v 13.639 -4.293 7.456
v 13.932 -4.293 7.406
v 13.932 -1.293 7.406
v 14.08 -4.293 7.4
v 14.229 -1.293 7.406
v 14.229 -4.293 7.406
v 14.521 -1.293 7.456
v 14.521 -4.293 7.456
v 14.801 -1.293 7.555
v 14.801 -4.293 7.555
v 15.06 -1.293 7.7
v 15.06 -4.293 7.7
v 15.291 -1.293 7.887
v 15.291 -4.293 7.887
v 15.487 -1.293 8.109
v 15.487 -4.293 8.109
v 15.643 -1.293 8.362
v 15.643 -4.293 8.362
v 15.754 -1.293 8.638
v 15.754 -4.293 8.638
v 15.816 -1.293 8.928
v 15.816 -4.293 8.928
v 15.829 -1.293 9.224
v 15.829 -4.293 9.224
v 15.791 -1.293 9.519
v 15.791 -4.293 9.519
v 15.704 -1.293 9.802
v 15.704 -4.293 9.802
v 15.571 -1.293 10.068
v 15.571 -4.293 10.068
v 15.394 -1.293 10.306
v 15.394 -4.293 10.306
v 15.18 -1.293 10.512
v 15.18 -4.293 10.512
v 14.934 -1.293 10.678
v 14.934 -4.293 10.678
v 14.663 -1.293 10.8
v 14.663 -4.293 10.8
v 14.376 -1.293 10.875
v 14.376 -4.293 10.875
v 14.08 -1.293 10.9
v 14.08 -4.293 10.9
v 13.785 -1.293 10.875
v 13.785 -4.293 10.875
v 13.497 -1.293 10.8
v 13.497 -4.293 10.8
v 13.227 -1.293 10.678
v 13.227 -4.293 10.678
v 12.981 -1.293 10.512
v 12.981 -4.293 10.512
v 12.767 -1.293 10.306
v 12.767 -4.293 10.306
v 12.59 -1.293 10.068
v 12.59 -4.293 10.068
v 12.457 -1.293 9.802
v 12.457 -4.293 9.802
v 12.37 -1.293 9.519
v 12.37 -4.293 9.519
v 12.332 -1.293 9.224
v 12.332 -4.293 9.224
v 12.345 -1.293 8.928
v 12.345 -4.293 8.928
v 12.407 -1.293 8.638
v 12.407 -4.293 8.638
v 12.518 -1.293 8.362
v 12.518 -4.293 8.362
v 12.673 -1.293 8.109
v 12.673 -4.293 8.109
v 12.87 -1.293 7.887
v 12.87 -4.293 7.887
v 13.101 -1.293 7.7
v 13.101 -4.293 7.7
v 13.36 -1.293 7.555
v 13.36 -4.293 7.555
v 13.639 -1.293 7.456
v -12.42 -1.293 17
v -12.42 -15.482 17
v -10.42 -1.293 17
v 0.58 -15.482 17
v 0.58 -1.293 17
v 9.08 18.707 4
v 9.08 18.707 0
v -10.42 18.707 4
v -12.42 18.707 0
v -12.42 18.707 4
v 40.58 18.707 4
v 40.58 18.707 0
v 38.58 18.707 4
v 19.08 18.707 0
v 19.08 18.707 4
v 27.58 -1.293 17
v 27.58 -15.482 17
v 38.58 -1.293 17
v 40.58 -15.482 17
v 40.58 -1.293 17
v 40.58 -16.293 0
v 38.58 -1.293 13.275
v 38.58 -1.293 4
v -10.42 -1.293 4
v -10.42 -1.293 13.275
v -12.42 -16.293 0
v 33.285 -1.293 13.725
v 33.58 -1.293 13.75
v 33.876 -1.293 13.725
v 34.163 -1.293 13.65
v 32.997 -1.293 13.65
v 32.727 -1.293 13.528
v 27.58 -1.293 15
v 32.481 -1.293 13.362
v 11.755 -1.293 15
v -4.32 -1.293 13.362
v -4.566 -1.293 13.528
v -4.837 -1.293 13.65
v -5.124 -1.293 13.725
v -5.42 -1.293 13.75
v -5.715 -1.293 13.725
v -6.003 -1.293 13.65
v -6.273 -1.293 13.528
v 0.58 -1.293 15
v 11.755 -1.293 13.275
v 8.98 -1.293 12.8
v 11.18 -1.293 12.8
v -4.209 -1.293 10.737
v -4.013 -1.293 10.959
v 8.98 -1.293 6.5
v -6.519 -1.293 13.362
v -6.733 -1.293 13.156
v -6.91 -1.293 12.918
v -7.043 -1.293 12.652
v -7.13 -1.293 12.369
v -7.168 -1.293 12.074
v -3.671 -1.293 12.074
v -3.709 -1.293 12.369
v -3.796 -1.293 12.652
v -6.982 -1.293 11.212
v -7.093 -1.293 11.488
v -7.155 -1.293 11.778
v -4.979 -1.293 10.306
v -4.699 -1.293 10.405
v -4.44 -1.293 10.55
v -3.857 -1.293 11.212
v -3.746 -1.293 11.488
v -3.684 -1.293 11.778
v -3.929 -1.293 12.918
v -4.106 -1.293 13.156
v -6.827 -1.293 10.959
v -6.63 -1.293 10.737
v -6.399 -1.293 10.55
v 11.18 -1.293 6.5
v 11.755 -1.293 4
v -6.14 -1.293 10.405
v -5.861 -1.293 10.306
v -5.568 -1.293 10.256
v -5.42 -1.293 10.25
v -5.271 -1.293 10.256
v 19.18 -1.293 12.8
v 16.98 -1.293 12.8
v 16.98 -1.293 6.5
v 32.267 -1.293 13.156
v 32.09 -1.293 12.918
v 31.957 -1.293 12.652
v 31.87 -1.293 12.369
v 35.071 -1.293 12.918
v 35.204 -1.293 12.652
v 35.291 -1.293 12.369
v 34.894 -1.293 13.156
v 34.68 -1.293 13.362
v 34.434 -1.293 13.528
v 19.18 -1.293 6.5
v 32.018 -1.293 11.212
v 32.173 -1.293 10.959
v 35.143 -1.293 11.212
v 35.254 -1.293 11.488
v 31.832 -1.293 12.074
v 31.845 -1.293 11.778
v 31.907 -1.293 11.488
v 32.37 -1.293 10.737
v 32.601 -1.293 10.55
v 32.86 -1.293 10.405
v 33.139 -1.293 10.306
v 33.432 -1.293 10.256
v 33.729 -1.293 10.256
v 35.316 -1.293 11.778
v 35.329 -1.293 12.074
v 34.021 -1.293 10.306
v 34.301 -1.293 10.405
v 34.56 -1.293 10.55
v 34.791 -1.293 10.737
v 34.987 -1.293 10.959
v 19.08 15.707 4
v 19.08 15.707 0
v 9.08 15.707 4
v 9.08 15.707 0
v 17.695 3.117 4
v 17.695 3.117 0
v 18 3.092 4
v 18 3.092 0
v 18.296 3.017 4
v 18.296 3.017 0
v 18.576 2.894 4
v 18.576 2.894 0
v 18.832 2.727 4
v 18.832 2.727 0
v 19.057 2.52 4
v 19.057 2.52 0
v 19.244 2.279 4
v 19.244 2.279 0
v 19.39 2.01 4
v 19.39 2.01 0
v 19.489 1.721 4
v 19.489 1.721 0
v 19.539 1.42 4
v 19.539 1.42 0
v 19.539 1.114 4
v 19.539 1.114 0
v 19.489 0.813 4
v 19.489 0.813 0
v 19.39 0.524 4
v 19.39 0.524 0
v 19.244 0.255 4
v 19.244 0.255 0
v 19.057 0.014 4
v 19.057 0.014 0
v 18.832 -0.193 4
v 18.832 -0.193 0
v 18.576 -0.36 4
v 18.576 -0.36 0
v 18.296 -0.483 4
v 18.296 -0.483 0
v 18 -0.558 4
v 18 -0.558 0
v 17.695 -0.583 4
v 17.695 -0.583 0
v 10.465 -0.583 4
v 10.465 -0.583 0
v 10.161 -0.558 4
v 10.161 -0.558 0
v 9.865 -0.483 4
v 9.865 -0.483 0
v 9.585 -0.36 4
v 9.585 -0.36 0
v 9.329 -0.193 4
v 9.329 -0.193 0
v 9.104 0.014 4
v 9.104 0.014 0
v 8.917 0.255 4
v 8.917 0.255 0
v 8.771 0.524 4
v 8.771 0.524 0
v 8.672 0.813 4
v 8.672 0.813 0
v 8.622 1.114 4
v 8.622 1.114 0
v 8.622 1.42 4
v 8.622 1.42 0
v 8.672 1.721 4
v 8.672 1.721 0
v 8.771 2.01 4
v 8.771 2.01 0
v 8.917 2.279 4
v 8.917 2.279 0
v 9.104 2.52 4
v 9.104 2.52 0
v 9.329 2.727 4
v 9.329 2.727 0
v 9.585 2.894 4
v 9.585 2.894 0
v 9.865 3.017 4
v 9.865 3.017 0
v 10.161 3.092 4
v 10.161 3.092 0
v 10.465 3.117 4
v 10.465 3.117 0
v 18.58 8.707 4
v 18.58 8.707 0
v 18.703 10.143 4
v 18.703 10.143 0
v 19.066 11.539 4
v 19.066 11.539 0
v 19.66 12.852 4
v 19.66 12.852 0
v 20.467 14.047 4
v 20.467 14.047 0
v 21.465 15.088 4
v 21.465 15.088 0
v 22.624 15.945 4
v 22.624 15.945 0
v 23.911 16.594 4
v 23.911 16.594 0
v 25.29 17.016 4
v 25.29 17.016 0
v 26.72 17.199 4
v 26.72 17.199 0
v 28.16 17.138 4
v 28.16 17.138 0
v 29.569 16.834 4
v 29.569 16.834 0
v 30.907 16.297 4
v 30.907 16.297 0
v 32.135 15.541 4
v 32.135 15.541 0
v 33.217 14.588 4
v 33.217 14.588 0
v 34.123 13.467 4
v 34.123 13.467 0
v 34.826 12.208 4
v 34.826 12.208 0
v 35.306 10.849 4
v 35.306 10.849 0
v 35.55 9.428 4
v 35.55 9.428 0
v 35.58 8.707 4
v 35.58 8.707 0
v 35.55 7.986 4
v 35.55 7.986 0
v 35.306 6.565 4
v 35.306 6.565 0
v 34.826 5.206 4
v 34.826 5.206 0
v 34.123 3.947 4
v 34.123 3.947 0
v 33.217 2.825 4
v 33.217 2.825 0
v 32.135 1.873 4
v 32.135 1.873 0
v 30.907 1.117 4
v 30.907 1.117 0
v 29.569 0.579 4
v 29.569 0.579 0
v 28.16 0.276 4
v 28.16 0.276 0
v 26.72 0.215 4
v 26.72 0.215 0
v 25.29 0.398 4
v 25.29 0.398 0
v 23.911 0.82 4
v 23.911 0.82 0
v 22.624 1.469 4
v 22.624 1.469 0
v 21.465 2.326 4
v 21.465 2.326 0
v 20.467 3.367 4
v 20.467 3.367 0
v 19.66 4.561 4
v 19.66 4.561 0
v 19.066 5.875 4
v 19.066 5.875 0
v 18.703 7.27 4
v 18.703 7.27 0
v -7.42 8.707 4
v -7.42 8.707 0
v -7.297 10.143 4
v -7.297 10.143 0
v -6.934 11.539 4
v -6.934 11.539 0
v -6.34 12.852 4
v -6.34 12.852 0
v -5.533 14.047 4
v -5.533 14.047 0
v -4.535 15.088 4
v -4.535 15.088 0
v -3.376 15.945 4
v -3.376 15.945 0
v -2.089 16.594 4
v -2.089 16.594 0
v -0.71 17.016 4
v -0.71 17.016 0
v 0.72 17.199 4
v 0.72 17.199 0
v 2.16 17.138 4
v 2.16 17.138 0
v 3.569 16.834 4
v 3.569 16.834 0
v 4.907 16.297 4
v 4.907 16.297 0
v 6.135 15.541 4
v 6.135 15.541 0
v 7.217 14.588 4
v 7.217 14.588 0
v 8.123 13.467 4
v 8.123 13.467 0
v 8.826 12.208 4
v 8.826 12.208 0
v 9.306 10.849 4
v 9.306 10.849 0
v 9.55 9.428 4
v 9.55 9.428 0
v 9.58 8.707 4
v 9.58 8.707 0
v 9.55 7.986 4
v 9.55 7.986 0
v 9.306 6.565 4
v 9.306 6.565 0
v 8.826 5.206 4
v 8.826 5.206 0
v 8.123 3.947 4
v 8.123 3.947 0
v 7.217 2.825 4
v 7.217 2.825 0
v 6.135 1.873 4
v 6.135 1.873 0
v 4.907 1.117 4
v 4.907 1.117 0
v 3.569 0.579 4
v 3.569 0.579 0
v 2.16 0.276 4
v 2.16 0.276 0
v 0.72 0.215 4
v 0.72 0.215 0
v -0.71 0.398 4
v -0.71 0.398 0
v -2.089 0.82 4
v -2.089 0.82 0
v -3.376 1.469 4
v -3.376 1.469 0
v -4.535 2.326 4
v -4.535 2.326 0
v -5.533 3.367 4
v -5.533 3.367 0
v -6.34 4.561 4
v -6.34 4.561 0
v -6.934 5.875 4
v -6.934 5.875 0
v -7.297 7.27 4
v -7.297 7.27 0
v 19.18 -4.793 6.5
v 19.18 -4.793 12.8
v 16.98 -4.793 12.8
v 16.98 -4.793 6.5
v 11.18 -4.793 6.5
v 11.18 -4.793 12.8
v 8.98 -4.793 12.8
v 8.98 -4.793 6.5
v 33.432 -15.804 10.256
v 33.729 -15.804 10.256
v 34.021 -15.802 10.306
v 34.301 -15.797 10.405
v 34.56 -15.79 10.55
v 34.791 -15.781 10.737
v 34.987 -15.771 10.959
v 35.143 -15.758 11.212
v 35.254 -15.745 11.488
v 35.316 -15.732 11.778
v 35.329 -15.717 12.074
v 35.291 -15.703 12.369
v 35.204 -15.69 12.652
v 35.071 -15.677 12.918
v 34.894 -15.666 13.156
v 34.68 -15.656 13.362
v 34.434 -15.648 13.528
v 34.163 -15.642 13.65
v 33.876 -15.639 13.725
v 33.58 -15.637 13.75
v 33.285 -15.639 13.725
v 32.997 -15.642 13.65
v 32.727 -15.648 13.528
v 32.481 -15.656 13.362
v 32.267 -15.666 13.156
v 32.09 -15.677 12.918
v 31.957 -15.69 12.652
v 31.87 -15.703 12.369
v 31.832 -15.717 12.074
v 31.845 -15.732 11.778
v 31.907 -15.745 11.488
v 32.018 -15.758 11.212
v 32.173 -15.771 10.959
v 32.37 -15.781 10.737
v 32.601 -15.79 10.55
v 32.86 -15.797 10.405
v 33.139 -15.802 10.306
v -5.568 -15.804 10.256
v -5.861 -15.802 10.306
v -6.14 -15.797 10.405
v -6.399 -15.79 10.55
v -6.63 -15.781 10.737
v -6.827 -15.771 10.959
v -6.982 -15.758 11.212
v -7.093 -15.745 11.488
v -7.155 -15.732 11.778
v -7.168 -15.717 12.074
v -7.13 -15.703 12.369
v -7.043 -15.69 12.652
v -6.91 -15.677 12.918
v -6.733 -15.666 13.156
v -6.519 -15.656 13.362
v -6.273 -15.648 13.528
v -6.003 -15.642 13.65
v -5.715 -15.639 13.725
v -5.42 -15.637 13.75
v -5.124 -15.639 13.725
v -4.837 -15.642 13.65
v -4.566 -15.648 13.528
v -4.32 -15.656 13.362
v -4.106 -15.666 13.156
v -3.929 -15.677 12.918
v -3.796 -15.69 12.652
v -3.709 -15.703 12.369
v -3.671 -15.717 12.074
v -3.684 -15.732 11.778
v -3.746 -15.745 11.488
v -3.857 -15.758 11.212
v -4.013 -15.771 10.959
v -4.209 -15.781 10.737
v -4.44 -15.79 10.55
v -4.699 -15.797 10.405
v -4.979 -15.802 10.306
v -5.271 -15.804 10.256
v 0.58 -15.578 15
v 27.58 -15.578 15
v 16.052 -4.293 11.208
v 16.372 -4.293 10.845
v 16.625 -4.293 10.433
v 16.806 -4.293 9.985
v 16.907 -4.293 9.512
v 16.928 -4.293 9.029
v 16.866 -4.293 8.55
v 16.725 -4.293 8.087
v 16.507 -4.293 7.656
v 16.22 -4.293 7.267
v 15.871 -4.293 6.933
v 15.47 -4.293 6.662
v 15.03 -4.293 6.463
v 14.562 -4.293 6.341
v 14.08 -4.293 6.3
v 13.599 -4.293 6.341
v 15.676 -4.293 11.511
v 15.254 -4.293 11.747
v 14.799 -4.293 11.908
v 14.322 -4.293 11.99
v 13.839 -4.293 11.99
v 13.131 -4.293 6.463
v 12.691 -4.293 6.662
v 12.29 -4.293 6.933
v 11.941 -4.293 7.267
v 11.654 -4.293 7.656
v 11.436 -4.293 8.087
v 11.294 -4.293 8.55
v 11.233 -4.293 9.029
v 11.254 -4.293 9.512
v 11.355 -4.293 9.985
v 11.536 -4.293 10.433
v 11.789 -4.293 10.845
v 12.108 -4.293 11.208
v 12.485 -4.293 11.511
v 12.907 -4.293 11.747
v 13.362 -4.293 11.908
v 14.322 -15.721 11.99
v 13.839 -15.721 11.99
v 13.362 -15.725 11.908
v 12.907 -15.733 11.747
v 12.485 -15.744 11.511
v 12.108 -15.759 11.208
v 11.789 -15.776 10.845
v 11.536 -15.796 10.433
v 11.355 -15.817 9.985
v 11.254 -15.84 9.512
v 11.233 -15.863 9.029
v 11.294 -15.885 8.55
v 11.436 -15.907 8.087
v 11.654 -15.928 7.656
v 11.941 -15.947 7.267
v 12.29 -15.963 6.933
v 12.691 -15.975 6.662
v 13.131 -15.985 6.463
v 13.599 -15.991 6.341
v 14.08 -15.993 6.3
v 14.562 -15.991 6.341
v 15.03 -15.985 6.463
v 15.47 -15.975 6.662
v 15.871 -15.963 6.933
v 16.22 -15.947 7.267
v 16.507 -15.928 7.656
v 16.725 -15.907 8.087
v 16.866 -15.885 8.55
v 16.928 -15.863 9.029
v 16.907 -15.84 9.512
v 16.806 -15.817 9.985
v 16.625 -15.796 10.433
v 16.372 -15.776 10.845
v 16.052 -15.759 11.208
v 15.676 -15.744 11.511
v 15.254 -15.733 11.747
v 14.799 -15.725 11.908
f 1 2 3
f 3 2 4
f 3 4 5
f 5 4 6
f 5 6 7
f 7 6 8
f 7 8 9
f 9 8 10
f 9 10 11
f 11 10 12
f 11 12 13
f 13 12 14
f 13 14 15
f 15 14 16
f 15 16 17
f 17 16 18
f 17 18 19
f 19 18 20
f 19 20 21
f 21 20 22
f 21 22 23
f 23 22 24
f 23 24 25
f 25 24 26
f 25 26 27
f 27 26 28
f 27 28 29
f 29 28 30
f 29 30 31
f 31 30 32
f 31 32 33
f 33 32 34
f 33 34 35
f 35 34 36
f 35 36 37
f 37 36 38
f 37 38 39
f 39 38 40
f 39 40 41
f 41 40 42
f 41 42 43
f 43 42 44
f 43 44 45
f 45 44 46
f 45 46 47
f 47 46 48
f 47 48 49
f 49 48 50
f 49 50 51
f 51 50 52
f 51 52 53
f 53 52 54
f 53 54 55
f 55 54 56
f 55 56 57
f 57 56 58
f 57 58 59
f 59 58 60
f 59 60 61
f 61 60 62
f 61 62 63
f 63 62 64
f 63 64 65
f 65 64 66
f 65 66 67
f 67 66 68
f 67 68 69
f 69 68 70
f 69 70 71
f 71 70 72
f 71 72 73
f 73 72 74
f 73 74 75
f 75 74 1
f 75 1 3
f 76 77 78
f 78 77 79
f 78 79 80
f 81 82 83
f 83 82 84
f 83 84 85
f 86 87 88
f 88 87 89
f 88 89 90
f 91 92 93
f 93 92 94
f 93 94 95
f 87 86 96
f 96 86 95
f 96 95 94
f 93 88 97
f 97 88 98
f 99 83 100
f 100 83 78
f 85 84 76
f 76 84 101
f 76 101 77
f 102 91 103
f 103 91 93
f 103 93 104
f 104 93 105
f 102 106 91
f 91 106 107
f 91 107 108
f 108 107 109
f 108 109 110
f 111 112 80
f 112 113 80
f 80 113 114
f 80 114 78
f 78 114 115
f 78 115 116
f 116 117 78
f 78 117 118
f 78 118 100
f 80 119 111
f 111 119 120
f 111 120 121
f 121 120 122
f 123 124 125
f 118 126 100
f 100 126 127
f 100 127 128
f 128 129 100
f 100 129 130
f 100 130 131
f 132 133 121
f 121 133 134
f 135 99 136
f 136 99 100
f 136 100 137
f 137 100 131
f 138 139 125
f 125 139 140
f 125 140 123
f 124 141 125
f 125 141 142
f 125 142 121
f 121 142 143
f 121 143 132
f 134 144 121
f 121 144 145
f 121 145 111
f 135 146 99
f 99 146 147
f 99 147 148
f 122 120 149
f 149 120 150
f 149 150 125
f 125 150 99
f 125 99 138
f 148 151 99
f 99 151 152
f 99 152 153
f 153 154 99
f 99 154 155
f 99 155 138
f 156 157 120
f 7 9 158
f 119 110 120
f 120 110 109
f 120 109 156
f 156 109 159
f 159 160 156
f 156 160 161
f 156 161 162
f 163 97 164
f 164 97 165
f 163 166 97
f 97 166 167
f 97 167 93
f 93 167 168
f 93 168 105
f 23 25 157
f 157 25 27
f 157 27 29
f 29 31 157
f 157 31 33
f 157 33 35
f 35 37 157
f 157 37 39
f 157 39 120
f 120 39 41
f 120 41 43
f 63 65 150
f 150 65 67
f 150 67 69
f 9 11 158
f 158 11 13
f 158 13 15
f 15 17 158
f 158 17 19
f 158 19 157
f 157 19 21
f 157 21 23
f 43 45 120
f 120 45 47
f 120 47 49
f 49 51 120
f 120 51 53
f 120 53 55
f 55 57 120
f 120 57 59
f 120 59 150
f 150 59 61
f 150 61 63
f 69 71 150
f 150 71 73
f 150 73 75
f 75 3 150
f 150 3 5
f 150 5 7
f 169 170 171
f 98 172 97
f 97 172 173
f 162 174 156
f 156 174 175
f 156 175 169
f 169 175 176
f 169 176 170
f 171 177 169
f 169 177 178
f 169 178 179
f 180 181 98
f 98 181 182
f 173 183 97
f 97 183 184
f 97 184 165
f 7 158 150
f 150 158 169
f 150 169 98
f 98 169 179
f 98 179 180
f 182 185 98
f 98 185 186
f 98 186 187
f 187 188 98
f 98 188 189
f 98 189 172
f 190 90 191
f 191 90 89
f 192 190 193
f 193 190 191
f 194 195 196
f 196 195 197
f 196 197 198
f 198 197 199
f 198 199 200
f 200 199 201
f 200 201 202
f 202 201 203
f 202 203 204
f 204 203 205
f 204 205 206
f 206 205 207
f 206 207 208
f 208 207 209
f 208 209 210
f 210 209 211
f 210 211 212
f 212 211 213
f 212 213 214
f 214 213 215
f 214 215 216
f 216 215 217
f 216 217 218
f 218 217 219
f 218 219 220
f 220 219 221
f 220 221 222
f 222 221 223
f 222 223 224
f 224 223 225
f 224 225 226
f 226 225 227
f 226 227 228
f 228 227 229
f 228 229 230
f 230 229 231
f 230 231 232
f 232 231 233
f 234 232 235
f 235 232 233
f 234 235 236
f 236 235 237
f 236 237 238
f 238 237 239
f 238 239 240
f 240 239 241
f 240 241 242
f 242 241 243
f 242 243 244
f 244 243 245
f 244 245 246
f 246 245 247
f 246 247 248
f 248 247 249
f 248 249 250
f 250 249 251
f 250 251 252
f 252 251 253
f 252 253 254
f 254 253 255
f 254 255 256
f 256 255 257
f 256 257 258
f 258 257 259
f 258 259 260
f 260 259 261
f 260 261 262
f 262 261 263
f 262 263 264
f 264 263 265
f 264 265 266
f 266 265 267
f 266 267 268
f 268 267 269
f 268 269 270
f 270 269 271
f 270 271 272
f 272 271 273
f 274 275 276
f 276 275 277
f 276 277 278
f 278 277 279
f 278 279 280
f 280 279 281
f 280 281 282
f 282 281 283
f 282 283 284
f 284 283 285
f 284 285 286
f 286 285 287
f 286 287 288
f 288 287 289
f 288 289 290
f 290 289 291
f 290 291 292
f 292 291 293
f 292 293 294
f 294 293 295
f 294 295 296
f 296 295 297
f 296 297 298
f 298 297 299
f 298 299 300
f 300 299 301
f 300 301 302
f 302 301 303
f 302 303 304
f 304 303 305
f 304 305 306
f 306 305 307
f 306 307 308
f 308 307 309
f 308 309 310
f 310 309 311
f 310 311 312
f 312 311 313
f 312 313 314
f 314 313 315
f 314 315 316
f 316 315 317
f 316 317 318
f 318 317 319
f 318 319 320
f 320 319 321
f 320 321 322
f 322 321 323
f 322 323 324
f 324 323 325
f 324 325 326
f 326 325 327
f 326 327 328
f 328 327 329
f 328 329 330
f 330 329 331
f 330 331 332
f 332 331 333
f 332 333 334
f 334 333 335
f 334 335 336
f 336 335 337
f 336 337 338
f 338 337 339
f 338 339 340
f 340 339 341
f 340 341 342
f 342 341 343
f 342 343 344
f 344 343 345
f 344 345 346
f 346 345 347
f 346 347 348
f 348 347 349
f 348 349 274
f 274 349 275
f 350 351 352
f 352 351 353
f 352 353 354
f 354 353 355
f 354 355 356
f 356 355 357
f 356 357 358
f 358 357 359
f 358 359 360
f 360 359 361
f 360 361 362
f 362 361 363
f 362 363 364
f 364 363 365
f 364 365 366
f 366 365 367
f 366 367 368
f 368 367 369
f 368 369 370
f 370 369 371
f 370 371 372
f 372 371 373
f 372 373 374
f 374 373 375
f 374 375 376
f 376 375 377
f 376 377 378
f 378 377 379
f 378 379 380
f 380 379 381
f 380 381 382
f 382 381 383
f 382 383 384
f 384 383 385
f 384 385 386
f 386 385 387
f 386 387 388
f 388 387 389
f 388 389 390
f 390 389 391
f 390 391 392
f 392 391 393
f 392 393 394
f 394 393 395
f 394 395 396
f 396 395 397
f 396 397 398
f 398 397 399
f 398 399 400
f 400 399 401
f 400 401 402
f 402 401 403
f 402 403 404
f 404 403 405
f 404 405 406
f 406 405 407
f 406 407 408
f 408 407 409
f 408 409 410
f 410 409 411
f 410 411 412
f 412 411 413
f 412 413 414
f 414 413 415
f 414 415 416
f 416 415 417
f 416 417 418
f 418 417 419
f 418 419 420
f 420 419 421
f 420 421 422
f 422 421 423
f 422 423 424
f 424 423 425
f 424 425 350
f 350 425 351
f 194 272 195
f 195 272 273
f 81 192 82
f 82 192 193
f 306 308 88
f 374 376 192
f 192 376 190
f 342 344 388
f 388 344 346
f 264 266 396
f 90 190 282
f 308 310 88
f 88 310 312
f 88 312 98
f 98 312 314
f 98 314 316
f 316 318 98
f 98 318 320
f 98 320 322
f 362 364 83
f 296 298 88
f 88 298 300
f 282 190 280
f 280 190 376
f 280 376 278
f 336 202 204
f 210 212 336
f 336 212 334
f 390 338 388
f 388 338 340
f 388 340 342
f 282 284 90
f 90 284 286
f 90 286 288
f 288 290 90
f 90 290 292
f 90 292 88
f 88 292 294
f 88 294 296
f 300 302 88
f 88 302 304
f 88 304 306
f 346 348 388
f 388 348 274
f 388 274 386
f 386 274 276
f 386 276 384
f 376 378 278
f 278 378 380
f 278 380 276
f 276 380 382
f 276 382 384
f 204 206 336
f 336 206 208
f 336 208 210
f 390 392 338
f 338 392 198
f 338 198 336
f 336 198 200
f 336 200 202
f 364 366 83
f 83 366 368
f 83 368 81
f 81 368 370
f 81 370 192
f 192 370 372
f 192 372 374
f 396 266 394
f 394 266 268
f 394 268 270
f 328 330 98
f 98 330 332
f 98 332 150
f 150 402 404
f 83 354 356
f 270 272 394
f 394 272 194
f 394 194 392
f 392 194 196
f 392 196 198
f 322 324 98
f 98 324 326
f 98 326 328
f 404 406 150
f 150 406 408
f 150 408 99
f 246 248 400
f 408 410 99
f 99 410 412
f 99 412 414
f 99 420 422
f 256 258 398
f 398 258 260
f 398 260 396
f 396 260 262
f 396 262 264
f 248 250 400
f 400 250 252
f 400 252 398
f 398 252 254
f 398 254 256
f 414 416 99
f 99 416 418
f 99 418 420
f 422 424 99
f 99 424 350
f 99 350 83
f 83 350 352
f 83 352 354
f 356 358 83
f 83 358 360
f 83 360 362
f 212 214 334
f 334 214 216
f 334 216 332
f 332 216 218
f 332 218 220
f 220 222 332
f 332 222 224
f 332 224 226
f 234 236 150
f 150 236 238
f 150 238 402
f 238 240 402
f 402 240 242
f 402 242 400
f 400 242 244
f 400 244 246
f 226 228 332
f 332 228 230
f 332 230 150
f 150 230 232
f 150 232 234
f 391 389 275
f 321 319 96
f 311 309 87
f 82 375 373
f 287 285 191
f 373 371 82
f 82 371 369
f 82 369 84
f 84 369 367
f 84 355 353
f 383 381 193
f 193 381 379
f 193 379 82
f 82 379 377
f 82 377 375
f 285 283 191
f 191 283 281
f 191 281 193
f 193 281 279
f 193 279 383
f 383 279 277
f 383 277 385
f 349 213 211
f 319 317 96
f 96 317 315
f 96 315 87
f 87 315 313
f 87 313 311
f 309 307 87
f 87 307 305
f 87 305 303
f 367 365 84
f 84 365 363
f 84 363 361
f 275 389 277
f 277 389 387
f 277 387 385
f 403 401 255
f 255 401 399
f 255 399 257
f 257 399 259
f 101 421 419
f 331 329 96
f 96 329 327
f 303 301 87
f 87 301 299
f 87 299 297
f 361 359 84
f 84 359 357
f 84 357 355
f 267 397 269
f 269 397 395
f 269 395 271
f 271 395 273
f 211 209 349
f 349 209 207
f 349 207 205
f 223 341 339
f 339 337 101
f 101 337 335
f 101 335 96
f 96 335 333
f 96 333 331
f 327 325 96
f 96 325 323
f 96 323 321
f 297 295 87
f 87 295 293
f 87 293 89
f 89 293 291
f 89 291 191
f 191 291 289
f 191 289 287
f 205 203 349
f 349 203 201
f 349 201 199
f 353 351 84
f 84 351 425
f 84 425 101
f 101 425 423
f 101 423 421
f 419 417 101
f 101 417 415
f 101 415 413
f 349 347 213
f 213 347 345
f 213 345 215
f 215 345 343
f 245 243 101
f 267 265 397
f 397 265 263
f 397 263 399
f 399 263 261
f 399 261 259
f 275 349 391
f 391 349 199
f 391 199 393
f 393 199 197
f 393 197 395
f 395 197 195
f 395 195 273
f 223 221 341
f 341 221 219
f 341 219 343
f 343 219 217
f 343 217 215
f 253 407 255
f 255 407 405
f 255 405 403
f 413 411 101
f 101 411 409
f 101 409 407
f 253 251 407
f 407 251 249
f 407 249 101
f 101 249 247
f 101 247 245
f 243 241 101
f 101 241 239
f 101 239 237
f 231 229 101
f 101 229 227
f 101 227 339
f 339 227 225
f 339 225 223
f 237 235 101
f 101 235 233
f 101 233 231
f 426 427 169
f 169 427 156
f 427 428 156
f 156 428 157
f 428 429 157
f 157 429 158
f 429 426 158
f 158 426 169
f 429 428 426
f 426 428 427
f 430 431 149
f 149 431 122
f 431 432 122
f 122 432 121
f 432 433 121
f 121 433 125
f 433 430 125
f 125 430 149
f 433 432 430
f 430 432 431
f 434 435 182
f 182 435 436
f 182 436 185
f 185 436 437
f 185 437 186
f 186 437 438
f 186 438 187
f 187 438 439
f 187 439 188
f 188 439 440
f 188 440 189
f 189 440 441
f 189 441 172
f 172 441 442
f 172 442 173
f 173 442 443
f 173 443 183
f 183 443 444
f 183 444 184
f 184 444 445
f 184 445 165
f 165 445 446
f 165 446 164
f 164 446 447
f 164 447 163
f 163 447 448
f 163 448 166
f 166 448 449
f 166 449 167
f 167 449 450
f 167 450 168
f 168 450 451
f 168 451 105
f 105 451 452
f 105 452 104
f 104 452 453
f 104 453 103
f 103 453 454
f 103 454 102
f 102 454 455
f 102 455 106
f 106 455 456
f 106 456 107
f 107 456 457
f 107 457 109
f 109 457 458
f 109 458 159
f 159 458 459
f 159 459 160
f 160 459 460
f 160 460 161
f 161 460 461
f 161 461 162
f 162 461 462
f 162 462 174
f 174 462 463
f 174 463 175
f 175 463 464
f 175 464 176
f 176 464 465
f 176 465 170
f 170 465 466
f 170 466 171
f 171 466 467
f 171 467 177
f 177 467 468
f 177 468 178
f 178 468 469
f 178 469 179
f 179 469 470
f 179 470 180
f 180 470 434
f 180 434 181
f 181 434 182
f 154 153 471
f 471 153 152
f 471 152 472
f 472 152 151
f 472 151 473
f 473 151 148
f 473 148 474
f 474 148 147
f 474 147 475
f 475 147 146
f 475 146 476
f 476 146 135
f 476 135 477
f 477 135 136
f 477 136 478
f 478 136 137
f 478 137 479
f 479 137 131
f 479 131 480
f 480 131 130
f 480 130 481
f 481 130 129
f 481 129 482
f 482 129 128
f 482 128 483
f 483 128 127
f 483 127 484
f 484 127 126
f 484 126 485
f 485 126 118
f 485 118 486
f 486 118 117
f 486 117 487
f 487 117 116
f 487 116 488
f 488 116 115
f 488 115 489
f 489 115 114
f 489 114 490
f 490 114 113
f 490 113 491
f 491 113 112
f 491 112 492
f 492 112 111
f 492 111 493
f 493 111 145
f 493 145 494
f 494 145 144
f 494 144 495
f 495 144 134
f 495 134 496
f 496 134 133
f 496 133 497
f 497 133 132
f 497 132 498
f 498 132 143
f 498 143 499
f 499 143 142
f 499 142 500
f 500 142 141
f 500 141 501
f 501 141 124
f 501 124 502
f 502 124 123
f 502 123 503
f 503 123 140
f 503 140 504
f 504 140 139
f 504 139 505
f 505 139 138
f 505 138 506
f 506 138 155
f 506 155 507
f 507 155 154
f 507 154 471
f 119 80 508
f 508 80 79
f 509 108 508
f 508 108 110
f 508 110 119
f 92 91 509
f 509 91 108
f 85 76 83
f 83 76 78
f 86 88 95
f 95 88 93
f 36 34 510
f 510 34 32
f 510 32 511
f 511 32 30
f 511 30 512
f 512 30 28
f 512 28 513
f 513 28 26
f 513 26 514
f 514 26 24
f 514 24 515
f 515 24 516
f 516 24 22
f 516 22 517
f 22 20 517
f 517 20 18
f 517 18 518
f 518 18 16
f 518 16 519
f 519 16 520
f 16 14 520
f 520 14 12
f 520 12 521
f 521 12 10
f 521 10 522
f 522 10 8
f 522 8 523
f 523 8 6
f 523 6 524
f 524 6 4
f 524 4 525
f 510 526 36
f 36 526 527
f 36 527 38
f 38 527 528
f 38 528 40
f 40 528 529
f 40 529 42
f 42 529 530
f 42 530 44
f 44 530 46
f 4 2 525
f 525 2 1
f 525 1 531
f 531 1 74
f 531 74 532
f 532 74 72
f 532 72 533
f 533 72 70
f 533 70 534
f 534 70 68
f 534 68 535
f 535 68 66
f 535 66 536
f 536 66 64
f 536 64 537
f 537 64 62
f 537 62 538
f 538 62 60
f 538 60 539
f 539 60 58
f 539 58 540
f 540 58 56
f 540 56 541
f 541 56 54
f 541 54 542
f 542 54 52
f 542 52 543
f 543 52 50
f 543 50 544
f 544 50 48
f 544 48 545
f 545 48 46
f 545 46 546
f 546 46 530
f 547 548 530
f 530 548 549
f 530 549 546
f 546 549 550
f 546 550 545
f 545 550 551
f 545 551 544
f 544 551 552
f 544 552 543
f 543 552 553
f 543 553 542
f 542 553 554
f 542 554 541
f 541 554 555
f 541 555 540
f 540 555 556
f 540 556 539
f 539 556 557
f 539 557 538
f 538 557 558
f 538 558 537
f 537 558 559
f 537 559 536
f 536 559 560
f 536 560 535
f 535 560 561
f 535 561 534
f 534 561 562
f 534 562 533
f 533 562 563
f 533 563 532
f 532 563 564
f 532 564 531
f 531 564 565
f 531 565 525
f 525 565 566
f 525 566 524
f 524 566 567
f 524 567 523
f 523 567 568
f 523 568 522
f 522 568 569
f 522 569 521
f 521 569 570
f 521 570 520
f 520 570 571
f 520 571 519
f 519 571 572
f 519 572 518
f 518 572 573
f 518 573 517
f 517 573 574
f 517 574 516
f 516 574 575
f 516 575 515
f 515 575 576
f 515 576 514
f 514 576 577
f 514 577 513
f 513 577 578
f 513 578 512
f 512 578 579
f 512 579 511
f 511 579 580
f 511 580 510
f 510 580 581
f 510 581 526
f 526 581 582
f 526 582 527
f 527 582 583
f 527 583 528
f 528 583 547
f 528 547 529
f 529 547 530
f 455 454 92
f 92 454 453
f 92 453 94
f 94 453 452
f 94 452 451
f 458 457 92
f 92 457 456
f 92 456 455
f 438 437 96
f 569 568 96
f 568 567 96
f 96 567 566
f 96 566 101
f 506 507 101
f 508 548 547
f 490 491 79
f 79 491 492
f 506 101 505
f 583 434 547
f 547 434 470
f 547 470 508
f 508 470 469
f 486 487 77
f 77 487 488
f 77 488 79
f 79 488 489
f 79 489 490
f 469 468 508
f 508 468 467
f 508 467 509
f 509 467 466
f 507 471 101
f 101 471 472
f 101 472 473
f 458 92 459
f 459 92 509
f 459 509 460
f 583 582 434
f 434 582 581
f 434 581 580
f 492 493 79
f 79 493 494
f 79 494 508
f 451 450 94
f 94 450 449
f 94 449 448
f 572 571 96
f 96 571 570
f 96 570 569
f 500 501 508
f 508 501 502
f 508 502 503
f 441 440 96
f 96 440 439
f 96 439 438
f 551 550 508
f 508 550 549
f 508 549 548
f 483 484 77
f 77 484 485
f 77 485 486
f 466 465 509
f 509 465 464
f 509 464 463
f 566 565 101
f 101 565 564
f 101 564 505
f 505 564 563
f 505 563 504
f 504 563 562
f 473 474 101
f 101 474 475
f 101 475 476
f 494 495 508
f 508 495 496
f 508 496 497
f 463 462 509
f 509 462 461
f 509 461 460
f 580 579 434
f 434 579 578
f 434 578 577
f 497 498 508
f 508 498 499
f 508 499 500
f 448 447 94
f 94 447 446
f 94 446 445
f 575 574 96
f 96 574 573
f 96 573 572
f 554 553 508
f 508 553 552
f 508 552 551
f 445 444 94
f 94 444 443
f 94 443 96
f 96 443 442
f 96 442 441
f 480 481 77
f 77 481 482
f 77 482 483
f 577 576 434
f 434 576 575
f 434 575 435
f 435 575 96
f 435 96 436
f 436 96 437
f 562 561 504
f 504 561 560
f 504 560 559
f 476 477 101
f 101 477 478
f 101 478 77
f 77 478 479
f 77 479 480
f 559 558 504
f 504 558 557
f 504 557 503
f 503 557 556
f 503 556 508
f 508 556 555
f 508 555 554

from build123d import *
from build123d.topology import SkipClean

# Parameters (mm, degrees)
SKETCH1_R           = 8.5
BOSS_EXTRUDE1_DEPTH = 4
BOSS_EXTRUDE2_DEPTH = 13
SKETCH3_W           = 2.2
SKETCH3_H           = 6.3
CUT_EXTRUDE1_DEPTH  = 3.5
SKETCH4_R           = 1.75
CUT_EXTRUDE2_DEPTH  = 47.663174732
SKETCH6_W           = 27
SKETCH6_H           = 2
CUT_EXTRUDE4_DEPTH  = 47.663174732
SKETCH7_W           = 2
SKETCH7_H           = 25
BOSS_EXTRUDE3_DEPTH = 17
CUT_EXTRUDE5_DEPTH  = 72
SKETCH9_R           = 1.75
BOSS_EXTRUDE4_DEPTH = 10
SKETCH10_R          = 2.85
CUT_EXTRUDE6_DEPTH  = 12
CUT_EXTRUDE7_DEPTH  = 54


with BuildPart() as part:
    # Sketch1 → Boss-Extrude1 (new body)
    with BuildSketch(Plane.XY):
        Polygon((-10.41954023, 18.706896552), (-10.41954023, -6.293103448), (38.58045977, -6.293103448), (38.58045977, 18.706896552), (19.08045977, 18.706896552), (19.08045977, 15.706896552), (14.08045977, 15.706896552), (9.08045977, 15.706896552), (9.08045977, 18.706896552), align=None)
        with BuildLine():
            ThreePointArc((10.46545977, -0.583103448), (8.61545977, 1.266896552), (10.46545977, 3.116896552))
            Line((10.46545977, 3.116896552), (17.69545977, 3.116896552))
            ThreePointArc((17.69545977, 3.116896552), (19.54545977, 1.266896552), (17.69545977, -0.583103448))
            Line((17.69545977, -0.583103448), (10.46545977, -0.583103448))
        make_face(mode=Mode.SUBTRACT)
        with Locations((1.08045977, 8.706896552)):
            Circle(SKETCH1_R, mode=Mode.SUBTRACT)
        with Locations((27.08045977, 8.706896552)):
            Circle(SKETCH1_R, mode=Mode.SUBTRACT)
    extrude(amount=BOSS_EXTRUDE1_DEPTH)

    # Sketch2 → Boss-Extrude2 (add)
    with BuildSketch(Plane.XY.offset(4)):
        Polygon((14.08045977, -1.293103448), (38.58045977, -1.293103448), (38.58045977, -6.293103448), (-10.41954023, -6.293103448), (-10.41954023, -1.293103448), align=None)
    extrude(amount=BOSS_EXTRUDE2_DEPTH)

    # Sketch3 → Cut-Extrude1 (cut)
    with BuildSketch(Plane(origin=(0, -1.293103448, 0), x_dir=(1, 0, 0), z_dir=(0, 1, 0))):
        with Locations((10.08045977, -9.65)):
            Rectangle(SKETCH3_W, SKETCH3_H)
        with Locations((18.08045977, -9.65)):
            Rectangle(SKETCH3_W, SKETCH3_H)
    extrude(amount=-CUT_EXTRUDE1_DEPTH, mode=Mode.SUBTRACT)

    # Sketch4 → Cut-Extrude2 (cut, through all)
    with BuildSketch(Plane(origin=(0, -1.293103448, 0), x_dir=(1, 0, 0), z_dir=(0, 1, 0))):
        with Locations((14.08045977, -9.15)):
            Circle(SKETCH4_R)
        with Locations((33.58045977, -12)):
            Circle(SKETCH4_R)
        with Locations((-5.41954023, -12)):
            Circle(SKETCH4_R)
    extrude(amount=-CUT_EXTRUDE2_DEPTH, mode=Mode.SUBTRACT)

    # Sketch6 → Cut-Extrude4 (cut, through all)
    with BuildSketch(Plane(origin=(0, -1.293103448, 0), x_dir=(1, 0, 0), z_dir=(0, 1, 0))):
        with Locations((14.08045977, -16)):
            Rectangle(SKETCH6_W, SKETCH6_H)
    extrude(amount=-CUT_EXTRUDE4_DEPTH, mode=Mode.SUBTRACT)

    # Sketch7 → Boss-Extrude3 (add)
    with BuildSketch(Plane(origin=(0, 0, 0), x_dir=(-1, 0, 0), z_dir=(0, 0, -1))):
        with Locations((-39.58045977, 6.206896552)):
            Rectangle(SKETCH7_W, SKETCH7_H)
        with Locations((11.41954023, 6.206896552)):
            Rectangle(SKETCH7_W, SKETCH7_H)
    extrude(amount=-BOSS_EXTRUDE3_DEPTH)

    # Sketch8 → Cut-Extrude5 (cut)
    with BuildSketch(Plane(origin=(40.58045977, 0, 0), x_dir=(0, 0, -1), z_dir=(1, 0, 0))):
        Polygon((-4, 18.706896552), (-17, -1.293103448), (-17, 18.706896552), align=None)
    extrude(amount=-CUT_EXTRUDE5_DEPTH, mode=Mode.SUBTRACT)

    # Sketch9 → Boss-Extrude4 (add)
    with SkipClean():  # the faces are left unmerged after this step: merging them gives an invalid solid
        with BuildSketch(Plane(origin=(0, -6.293103448, 0), x_dir=(-1, 0, 0), z_dir=(0, -1, 0))):
            Polygon((-40.58045977, 0), (-40.58045977, -17), (-27.58045977, -17), (-27.58045977, -15), (-0.58045977, -15), (-0.58045977, -17), (12.41954023, -17), (12.41954023, 0), align=None)
            with Locations((5.41954023, -12)):
                Circle(SKETCH9_R, mode=Mode.SUBTRACT)
            with Locations((-14.08045977, -9.15)):
                Circle(SKETCH9_R, mode=Mode.SUBTRACT)
            with Locations((-33.58045977, -12)):
                Circle(SKETCH9_R, mode=Mode.SUBTRACT)
        extrude(amount=BOSS_EXTRUDE4_DEPTH)

    # Sketch10 → Cut-Extrude6 (cut)
    with SkipClean():  # the faces are left unmerged after this step: merging them gives an invalid solid
        with BuildSketch(Plane(origin=(0, -16.293103448, 0), x_dir=(-1, 0, 0), z_dir=(0, -1, 0))):
            with Locations((-14.08045977, -9.15)):
                Circle(SKETCH10_R)
        extrude(amount=-CUT_EXTRUDE6_DEPTH, mode=Mode.SUBTRACT)

    # Sketch11 → Cut-Extrude7 (cut)
    with SkipClean():  # the faces are left unmerged after this step: merging them gives an invalid solid
        with BuildSketch(Plane.ZY.offset(12.41954023)):
            Polygon((17, -16.293103448), (17, -15.482482603), (0, -16.293103448), align=None)
        extrude(amount=-CUT_EXTRUDE7_DEPTH, mode=Mode.SUBTRACT)


solid = part.part
